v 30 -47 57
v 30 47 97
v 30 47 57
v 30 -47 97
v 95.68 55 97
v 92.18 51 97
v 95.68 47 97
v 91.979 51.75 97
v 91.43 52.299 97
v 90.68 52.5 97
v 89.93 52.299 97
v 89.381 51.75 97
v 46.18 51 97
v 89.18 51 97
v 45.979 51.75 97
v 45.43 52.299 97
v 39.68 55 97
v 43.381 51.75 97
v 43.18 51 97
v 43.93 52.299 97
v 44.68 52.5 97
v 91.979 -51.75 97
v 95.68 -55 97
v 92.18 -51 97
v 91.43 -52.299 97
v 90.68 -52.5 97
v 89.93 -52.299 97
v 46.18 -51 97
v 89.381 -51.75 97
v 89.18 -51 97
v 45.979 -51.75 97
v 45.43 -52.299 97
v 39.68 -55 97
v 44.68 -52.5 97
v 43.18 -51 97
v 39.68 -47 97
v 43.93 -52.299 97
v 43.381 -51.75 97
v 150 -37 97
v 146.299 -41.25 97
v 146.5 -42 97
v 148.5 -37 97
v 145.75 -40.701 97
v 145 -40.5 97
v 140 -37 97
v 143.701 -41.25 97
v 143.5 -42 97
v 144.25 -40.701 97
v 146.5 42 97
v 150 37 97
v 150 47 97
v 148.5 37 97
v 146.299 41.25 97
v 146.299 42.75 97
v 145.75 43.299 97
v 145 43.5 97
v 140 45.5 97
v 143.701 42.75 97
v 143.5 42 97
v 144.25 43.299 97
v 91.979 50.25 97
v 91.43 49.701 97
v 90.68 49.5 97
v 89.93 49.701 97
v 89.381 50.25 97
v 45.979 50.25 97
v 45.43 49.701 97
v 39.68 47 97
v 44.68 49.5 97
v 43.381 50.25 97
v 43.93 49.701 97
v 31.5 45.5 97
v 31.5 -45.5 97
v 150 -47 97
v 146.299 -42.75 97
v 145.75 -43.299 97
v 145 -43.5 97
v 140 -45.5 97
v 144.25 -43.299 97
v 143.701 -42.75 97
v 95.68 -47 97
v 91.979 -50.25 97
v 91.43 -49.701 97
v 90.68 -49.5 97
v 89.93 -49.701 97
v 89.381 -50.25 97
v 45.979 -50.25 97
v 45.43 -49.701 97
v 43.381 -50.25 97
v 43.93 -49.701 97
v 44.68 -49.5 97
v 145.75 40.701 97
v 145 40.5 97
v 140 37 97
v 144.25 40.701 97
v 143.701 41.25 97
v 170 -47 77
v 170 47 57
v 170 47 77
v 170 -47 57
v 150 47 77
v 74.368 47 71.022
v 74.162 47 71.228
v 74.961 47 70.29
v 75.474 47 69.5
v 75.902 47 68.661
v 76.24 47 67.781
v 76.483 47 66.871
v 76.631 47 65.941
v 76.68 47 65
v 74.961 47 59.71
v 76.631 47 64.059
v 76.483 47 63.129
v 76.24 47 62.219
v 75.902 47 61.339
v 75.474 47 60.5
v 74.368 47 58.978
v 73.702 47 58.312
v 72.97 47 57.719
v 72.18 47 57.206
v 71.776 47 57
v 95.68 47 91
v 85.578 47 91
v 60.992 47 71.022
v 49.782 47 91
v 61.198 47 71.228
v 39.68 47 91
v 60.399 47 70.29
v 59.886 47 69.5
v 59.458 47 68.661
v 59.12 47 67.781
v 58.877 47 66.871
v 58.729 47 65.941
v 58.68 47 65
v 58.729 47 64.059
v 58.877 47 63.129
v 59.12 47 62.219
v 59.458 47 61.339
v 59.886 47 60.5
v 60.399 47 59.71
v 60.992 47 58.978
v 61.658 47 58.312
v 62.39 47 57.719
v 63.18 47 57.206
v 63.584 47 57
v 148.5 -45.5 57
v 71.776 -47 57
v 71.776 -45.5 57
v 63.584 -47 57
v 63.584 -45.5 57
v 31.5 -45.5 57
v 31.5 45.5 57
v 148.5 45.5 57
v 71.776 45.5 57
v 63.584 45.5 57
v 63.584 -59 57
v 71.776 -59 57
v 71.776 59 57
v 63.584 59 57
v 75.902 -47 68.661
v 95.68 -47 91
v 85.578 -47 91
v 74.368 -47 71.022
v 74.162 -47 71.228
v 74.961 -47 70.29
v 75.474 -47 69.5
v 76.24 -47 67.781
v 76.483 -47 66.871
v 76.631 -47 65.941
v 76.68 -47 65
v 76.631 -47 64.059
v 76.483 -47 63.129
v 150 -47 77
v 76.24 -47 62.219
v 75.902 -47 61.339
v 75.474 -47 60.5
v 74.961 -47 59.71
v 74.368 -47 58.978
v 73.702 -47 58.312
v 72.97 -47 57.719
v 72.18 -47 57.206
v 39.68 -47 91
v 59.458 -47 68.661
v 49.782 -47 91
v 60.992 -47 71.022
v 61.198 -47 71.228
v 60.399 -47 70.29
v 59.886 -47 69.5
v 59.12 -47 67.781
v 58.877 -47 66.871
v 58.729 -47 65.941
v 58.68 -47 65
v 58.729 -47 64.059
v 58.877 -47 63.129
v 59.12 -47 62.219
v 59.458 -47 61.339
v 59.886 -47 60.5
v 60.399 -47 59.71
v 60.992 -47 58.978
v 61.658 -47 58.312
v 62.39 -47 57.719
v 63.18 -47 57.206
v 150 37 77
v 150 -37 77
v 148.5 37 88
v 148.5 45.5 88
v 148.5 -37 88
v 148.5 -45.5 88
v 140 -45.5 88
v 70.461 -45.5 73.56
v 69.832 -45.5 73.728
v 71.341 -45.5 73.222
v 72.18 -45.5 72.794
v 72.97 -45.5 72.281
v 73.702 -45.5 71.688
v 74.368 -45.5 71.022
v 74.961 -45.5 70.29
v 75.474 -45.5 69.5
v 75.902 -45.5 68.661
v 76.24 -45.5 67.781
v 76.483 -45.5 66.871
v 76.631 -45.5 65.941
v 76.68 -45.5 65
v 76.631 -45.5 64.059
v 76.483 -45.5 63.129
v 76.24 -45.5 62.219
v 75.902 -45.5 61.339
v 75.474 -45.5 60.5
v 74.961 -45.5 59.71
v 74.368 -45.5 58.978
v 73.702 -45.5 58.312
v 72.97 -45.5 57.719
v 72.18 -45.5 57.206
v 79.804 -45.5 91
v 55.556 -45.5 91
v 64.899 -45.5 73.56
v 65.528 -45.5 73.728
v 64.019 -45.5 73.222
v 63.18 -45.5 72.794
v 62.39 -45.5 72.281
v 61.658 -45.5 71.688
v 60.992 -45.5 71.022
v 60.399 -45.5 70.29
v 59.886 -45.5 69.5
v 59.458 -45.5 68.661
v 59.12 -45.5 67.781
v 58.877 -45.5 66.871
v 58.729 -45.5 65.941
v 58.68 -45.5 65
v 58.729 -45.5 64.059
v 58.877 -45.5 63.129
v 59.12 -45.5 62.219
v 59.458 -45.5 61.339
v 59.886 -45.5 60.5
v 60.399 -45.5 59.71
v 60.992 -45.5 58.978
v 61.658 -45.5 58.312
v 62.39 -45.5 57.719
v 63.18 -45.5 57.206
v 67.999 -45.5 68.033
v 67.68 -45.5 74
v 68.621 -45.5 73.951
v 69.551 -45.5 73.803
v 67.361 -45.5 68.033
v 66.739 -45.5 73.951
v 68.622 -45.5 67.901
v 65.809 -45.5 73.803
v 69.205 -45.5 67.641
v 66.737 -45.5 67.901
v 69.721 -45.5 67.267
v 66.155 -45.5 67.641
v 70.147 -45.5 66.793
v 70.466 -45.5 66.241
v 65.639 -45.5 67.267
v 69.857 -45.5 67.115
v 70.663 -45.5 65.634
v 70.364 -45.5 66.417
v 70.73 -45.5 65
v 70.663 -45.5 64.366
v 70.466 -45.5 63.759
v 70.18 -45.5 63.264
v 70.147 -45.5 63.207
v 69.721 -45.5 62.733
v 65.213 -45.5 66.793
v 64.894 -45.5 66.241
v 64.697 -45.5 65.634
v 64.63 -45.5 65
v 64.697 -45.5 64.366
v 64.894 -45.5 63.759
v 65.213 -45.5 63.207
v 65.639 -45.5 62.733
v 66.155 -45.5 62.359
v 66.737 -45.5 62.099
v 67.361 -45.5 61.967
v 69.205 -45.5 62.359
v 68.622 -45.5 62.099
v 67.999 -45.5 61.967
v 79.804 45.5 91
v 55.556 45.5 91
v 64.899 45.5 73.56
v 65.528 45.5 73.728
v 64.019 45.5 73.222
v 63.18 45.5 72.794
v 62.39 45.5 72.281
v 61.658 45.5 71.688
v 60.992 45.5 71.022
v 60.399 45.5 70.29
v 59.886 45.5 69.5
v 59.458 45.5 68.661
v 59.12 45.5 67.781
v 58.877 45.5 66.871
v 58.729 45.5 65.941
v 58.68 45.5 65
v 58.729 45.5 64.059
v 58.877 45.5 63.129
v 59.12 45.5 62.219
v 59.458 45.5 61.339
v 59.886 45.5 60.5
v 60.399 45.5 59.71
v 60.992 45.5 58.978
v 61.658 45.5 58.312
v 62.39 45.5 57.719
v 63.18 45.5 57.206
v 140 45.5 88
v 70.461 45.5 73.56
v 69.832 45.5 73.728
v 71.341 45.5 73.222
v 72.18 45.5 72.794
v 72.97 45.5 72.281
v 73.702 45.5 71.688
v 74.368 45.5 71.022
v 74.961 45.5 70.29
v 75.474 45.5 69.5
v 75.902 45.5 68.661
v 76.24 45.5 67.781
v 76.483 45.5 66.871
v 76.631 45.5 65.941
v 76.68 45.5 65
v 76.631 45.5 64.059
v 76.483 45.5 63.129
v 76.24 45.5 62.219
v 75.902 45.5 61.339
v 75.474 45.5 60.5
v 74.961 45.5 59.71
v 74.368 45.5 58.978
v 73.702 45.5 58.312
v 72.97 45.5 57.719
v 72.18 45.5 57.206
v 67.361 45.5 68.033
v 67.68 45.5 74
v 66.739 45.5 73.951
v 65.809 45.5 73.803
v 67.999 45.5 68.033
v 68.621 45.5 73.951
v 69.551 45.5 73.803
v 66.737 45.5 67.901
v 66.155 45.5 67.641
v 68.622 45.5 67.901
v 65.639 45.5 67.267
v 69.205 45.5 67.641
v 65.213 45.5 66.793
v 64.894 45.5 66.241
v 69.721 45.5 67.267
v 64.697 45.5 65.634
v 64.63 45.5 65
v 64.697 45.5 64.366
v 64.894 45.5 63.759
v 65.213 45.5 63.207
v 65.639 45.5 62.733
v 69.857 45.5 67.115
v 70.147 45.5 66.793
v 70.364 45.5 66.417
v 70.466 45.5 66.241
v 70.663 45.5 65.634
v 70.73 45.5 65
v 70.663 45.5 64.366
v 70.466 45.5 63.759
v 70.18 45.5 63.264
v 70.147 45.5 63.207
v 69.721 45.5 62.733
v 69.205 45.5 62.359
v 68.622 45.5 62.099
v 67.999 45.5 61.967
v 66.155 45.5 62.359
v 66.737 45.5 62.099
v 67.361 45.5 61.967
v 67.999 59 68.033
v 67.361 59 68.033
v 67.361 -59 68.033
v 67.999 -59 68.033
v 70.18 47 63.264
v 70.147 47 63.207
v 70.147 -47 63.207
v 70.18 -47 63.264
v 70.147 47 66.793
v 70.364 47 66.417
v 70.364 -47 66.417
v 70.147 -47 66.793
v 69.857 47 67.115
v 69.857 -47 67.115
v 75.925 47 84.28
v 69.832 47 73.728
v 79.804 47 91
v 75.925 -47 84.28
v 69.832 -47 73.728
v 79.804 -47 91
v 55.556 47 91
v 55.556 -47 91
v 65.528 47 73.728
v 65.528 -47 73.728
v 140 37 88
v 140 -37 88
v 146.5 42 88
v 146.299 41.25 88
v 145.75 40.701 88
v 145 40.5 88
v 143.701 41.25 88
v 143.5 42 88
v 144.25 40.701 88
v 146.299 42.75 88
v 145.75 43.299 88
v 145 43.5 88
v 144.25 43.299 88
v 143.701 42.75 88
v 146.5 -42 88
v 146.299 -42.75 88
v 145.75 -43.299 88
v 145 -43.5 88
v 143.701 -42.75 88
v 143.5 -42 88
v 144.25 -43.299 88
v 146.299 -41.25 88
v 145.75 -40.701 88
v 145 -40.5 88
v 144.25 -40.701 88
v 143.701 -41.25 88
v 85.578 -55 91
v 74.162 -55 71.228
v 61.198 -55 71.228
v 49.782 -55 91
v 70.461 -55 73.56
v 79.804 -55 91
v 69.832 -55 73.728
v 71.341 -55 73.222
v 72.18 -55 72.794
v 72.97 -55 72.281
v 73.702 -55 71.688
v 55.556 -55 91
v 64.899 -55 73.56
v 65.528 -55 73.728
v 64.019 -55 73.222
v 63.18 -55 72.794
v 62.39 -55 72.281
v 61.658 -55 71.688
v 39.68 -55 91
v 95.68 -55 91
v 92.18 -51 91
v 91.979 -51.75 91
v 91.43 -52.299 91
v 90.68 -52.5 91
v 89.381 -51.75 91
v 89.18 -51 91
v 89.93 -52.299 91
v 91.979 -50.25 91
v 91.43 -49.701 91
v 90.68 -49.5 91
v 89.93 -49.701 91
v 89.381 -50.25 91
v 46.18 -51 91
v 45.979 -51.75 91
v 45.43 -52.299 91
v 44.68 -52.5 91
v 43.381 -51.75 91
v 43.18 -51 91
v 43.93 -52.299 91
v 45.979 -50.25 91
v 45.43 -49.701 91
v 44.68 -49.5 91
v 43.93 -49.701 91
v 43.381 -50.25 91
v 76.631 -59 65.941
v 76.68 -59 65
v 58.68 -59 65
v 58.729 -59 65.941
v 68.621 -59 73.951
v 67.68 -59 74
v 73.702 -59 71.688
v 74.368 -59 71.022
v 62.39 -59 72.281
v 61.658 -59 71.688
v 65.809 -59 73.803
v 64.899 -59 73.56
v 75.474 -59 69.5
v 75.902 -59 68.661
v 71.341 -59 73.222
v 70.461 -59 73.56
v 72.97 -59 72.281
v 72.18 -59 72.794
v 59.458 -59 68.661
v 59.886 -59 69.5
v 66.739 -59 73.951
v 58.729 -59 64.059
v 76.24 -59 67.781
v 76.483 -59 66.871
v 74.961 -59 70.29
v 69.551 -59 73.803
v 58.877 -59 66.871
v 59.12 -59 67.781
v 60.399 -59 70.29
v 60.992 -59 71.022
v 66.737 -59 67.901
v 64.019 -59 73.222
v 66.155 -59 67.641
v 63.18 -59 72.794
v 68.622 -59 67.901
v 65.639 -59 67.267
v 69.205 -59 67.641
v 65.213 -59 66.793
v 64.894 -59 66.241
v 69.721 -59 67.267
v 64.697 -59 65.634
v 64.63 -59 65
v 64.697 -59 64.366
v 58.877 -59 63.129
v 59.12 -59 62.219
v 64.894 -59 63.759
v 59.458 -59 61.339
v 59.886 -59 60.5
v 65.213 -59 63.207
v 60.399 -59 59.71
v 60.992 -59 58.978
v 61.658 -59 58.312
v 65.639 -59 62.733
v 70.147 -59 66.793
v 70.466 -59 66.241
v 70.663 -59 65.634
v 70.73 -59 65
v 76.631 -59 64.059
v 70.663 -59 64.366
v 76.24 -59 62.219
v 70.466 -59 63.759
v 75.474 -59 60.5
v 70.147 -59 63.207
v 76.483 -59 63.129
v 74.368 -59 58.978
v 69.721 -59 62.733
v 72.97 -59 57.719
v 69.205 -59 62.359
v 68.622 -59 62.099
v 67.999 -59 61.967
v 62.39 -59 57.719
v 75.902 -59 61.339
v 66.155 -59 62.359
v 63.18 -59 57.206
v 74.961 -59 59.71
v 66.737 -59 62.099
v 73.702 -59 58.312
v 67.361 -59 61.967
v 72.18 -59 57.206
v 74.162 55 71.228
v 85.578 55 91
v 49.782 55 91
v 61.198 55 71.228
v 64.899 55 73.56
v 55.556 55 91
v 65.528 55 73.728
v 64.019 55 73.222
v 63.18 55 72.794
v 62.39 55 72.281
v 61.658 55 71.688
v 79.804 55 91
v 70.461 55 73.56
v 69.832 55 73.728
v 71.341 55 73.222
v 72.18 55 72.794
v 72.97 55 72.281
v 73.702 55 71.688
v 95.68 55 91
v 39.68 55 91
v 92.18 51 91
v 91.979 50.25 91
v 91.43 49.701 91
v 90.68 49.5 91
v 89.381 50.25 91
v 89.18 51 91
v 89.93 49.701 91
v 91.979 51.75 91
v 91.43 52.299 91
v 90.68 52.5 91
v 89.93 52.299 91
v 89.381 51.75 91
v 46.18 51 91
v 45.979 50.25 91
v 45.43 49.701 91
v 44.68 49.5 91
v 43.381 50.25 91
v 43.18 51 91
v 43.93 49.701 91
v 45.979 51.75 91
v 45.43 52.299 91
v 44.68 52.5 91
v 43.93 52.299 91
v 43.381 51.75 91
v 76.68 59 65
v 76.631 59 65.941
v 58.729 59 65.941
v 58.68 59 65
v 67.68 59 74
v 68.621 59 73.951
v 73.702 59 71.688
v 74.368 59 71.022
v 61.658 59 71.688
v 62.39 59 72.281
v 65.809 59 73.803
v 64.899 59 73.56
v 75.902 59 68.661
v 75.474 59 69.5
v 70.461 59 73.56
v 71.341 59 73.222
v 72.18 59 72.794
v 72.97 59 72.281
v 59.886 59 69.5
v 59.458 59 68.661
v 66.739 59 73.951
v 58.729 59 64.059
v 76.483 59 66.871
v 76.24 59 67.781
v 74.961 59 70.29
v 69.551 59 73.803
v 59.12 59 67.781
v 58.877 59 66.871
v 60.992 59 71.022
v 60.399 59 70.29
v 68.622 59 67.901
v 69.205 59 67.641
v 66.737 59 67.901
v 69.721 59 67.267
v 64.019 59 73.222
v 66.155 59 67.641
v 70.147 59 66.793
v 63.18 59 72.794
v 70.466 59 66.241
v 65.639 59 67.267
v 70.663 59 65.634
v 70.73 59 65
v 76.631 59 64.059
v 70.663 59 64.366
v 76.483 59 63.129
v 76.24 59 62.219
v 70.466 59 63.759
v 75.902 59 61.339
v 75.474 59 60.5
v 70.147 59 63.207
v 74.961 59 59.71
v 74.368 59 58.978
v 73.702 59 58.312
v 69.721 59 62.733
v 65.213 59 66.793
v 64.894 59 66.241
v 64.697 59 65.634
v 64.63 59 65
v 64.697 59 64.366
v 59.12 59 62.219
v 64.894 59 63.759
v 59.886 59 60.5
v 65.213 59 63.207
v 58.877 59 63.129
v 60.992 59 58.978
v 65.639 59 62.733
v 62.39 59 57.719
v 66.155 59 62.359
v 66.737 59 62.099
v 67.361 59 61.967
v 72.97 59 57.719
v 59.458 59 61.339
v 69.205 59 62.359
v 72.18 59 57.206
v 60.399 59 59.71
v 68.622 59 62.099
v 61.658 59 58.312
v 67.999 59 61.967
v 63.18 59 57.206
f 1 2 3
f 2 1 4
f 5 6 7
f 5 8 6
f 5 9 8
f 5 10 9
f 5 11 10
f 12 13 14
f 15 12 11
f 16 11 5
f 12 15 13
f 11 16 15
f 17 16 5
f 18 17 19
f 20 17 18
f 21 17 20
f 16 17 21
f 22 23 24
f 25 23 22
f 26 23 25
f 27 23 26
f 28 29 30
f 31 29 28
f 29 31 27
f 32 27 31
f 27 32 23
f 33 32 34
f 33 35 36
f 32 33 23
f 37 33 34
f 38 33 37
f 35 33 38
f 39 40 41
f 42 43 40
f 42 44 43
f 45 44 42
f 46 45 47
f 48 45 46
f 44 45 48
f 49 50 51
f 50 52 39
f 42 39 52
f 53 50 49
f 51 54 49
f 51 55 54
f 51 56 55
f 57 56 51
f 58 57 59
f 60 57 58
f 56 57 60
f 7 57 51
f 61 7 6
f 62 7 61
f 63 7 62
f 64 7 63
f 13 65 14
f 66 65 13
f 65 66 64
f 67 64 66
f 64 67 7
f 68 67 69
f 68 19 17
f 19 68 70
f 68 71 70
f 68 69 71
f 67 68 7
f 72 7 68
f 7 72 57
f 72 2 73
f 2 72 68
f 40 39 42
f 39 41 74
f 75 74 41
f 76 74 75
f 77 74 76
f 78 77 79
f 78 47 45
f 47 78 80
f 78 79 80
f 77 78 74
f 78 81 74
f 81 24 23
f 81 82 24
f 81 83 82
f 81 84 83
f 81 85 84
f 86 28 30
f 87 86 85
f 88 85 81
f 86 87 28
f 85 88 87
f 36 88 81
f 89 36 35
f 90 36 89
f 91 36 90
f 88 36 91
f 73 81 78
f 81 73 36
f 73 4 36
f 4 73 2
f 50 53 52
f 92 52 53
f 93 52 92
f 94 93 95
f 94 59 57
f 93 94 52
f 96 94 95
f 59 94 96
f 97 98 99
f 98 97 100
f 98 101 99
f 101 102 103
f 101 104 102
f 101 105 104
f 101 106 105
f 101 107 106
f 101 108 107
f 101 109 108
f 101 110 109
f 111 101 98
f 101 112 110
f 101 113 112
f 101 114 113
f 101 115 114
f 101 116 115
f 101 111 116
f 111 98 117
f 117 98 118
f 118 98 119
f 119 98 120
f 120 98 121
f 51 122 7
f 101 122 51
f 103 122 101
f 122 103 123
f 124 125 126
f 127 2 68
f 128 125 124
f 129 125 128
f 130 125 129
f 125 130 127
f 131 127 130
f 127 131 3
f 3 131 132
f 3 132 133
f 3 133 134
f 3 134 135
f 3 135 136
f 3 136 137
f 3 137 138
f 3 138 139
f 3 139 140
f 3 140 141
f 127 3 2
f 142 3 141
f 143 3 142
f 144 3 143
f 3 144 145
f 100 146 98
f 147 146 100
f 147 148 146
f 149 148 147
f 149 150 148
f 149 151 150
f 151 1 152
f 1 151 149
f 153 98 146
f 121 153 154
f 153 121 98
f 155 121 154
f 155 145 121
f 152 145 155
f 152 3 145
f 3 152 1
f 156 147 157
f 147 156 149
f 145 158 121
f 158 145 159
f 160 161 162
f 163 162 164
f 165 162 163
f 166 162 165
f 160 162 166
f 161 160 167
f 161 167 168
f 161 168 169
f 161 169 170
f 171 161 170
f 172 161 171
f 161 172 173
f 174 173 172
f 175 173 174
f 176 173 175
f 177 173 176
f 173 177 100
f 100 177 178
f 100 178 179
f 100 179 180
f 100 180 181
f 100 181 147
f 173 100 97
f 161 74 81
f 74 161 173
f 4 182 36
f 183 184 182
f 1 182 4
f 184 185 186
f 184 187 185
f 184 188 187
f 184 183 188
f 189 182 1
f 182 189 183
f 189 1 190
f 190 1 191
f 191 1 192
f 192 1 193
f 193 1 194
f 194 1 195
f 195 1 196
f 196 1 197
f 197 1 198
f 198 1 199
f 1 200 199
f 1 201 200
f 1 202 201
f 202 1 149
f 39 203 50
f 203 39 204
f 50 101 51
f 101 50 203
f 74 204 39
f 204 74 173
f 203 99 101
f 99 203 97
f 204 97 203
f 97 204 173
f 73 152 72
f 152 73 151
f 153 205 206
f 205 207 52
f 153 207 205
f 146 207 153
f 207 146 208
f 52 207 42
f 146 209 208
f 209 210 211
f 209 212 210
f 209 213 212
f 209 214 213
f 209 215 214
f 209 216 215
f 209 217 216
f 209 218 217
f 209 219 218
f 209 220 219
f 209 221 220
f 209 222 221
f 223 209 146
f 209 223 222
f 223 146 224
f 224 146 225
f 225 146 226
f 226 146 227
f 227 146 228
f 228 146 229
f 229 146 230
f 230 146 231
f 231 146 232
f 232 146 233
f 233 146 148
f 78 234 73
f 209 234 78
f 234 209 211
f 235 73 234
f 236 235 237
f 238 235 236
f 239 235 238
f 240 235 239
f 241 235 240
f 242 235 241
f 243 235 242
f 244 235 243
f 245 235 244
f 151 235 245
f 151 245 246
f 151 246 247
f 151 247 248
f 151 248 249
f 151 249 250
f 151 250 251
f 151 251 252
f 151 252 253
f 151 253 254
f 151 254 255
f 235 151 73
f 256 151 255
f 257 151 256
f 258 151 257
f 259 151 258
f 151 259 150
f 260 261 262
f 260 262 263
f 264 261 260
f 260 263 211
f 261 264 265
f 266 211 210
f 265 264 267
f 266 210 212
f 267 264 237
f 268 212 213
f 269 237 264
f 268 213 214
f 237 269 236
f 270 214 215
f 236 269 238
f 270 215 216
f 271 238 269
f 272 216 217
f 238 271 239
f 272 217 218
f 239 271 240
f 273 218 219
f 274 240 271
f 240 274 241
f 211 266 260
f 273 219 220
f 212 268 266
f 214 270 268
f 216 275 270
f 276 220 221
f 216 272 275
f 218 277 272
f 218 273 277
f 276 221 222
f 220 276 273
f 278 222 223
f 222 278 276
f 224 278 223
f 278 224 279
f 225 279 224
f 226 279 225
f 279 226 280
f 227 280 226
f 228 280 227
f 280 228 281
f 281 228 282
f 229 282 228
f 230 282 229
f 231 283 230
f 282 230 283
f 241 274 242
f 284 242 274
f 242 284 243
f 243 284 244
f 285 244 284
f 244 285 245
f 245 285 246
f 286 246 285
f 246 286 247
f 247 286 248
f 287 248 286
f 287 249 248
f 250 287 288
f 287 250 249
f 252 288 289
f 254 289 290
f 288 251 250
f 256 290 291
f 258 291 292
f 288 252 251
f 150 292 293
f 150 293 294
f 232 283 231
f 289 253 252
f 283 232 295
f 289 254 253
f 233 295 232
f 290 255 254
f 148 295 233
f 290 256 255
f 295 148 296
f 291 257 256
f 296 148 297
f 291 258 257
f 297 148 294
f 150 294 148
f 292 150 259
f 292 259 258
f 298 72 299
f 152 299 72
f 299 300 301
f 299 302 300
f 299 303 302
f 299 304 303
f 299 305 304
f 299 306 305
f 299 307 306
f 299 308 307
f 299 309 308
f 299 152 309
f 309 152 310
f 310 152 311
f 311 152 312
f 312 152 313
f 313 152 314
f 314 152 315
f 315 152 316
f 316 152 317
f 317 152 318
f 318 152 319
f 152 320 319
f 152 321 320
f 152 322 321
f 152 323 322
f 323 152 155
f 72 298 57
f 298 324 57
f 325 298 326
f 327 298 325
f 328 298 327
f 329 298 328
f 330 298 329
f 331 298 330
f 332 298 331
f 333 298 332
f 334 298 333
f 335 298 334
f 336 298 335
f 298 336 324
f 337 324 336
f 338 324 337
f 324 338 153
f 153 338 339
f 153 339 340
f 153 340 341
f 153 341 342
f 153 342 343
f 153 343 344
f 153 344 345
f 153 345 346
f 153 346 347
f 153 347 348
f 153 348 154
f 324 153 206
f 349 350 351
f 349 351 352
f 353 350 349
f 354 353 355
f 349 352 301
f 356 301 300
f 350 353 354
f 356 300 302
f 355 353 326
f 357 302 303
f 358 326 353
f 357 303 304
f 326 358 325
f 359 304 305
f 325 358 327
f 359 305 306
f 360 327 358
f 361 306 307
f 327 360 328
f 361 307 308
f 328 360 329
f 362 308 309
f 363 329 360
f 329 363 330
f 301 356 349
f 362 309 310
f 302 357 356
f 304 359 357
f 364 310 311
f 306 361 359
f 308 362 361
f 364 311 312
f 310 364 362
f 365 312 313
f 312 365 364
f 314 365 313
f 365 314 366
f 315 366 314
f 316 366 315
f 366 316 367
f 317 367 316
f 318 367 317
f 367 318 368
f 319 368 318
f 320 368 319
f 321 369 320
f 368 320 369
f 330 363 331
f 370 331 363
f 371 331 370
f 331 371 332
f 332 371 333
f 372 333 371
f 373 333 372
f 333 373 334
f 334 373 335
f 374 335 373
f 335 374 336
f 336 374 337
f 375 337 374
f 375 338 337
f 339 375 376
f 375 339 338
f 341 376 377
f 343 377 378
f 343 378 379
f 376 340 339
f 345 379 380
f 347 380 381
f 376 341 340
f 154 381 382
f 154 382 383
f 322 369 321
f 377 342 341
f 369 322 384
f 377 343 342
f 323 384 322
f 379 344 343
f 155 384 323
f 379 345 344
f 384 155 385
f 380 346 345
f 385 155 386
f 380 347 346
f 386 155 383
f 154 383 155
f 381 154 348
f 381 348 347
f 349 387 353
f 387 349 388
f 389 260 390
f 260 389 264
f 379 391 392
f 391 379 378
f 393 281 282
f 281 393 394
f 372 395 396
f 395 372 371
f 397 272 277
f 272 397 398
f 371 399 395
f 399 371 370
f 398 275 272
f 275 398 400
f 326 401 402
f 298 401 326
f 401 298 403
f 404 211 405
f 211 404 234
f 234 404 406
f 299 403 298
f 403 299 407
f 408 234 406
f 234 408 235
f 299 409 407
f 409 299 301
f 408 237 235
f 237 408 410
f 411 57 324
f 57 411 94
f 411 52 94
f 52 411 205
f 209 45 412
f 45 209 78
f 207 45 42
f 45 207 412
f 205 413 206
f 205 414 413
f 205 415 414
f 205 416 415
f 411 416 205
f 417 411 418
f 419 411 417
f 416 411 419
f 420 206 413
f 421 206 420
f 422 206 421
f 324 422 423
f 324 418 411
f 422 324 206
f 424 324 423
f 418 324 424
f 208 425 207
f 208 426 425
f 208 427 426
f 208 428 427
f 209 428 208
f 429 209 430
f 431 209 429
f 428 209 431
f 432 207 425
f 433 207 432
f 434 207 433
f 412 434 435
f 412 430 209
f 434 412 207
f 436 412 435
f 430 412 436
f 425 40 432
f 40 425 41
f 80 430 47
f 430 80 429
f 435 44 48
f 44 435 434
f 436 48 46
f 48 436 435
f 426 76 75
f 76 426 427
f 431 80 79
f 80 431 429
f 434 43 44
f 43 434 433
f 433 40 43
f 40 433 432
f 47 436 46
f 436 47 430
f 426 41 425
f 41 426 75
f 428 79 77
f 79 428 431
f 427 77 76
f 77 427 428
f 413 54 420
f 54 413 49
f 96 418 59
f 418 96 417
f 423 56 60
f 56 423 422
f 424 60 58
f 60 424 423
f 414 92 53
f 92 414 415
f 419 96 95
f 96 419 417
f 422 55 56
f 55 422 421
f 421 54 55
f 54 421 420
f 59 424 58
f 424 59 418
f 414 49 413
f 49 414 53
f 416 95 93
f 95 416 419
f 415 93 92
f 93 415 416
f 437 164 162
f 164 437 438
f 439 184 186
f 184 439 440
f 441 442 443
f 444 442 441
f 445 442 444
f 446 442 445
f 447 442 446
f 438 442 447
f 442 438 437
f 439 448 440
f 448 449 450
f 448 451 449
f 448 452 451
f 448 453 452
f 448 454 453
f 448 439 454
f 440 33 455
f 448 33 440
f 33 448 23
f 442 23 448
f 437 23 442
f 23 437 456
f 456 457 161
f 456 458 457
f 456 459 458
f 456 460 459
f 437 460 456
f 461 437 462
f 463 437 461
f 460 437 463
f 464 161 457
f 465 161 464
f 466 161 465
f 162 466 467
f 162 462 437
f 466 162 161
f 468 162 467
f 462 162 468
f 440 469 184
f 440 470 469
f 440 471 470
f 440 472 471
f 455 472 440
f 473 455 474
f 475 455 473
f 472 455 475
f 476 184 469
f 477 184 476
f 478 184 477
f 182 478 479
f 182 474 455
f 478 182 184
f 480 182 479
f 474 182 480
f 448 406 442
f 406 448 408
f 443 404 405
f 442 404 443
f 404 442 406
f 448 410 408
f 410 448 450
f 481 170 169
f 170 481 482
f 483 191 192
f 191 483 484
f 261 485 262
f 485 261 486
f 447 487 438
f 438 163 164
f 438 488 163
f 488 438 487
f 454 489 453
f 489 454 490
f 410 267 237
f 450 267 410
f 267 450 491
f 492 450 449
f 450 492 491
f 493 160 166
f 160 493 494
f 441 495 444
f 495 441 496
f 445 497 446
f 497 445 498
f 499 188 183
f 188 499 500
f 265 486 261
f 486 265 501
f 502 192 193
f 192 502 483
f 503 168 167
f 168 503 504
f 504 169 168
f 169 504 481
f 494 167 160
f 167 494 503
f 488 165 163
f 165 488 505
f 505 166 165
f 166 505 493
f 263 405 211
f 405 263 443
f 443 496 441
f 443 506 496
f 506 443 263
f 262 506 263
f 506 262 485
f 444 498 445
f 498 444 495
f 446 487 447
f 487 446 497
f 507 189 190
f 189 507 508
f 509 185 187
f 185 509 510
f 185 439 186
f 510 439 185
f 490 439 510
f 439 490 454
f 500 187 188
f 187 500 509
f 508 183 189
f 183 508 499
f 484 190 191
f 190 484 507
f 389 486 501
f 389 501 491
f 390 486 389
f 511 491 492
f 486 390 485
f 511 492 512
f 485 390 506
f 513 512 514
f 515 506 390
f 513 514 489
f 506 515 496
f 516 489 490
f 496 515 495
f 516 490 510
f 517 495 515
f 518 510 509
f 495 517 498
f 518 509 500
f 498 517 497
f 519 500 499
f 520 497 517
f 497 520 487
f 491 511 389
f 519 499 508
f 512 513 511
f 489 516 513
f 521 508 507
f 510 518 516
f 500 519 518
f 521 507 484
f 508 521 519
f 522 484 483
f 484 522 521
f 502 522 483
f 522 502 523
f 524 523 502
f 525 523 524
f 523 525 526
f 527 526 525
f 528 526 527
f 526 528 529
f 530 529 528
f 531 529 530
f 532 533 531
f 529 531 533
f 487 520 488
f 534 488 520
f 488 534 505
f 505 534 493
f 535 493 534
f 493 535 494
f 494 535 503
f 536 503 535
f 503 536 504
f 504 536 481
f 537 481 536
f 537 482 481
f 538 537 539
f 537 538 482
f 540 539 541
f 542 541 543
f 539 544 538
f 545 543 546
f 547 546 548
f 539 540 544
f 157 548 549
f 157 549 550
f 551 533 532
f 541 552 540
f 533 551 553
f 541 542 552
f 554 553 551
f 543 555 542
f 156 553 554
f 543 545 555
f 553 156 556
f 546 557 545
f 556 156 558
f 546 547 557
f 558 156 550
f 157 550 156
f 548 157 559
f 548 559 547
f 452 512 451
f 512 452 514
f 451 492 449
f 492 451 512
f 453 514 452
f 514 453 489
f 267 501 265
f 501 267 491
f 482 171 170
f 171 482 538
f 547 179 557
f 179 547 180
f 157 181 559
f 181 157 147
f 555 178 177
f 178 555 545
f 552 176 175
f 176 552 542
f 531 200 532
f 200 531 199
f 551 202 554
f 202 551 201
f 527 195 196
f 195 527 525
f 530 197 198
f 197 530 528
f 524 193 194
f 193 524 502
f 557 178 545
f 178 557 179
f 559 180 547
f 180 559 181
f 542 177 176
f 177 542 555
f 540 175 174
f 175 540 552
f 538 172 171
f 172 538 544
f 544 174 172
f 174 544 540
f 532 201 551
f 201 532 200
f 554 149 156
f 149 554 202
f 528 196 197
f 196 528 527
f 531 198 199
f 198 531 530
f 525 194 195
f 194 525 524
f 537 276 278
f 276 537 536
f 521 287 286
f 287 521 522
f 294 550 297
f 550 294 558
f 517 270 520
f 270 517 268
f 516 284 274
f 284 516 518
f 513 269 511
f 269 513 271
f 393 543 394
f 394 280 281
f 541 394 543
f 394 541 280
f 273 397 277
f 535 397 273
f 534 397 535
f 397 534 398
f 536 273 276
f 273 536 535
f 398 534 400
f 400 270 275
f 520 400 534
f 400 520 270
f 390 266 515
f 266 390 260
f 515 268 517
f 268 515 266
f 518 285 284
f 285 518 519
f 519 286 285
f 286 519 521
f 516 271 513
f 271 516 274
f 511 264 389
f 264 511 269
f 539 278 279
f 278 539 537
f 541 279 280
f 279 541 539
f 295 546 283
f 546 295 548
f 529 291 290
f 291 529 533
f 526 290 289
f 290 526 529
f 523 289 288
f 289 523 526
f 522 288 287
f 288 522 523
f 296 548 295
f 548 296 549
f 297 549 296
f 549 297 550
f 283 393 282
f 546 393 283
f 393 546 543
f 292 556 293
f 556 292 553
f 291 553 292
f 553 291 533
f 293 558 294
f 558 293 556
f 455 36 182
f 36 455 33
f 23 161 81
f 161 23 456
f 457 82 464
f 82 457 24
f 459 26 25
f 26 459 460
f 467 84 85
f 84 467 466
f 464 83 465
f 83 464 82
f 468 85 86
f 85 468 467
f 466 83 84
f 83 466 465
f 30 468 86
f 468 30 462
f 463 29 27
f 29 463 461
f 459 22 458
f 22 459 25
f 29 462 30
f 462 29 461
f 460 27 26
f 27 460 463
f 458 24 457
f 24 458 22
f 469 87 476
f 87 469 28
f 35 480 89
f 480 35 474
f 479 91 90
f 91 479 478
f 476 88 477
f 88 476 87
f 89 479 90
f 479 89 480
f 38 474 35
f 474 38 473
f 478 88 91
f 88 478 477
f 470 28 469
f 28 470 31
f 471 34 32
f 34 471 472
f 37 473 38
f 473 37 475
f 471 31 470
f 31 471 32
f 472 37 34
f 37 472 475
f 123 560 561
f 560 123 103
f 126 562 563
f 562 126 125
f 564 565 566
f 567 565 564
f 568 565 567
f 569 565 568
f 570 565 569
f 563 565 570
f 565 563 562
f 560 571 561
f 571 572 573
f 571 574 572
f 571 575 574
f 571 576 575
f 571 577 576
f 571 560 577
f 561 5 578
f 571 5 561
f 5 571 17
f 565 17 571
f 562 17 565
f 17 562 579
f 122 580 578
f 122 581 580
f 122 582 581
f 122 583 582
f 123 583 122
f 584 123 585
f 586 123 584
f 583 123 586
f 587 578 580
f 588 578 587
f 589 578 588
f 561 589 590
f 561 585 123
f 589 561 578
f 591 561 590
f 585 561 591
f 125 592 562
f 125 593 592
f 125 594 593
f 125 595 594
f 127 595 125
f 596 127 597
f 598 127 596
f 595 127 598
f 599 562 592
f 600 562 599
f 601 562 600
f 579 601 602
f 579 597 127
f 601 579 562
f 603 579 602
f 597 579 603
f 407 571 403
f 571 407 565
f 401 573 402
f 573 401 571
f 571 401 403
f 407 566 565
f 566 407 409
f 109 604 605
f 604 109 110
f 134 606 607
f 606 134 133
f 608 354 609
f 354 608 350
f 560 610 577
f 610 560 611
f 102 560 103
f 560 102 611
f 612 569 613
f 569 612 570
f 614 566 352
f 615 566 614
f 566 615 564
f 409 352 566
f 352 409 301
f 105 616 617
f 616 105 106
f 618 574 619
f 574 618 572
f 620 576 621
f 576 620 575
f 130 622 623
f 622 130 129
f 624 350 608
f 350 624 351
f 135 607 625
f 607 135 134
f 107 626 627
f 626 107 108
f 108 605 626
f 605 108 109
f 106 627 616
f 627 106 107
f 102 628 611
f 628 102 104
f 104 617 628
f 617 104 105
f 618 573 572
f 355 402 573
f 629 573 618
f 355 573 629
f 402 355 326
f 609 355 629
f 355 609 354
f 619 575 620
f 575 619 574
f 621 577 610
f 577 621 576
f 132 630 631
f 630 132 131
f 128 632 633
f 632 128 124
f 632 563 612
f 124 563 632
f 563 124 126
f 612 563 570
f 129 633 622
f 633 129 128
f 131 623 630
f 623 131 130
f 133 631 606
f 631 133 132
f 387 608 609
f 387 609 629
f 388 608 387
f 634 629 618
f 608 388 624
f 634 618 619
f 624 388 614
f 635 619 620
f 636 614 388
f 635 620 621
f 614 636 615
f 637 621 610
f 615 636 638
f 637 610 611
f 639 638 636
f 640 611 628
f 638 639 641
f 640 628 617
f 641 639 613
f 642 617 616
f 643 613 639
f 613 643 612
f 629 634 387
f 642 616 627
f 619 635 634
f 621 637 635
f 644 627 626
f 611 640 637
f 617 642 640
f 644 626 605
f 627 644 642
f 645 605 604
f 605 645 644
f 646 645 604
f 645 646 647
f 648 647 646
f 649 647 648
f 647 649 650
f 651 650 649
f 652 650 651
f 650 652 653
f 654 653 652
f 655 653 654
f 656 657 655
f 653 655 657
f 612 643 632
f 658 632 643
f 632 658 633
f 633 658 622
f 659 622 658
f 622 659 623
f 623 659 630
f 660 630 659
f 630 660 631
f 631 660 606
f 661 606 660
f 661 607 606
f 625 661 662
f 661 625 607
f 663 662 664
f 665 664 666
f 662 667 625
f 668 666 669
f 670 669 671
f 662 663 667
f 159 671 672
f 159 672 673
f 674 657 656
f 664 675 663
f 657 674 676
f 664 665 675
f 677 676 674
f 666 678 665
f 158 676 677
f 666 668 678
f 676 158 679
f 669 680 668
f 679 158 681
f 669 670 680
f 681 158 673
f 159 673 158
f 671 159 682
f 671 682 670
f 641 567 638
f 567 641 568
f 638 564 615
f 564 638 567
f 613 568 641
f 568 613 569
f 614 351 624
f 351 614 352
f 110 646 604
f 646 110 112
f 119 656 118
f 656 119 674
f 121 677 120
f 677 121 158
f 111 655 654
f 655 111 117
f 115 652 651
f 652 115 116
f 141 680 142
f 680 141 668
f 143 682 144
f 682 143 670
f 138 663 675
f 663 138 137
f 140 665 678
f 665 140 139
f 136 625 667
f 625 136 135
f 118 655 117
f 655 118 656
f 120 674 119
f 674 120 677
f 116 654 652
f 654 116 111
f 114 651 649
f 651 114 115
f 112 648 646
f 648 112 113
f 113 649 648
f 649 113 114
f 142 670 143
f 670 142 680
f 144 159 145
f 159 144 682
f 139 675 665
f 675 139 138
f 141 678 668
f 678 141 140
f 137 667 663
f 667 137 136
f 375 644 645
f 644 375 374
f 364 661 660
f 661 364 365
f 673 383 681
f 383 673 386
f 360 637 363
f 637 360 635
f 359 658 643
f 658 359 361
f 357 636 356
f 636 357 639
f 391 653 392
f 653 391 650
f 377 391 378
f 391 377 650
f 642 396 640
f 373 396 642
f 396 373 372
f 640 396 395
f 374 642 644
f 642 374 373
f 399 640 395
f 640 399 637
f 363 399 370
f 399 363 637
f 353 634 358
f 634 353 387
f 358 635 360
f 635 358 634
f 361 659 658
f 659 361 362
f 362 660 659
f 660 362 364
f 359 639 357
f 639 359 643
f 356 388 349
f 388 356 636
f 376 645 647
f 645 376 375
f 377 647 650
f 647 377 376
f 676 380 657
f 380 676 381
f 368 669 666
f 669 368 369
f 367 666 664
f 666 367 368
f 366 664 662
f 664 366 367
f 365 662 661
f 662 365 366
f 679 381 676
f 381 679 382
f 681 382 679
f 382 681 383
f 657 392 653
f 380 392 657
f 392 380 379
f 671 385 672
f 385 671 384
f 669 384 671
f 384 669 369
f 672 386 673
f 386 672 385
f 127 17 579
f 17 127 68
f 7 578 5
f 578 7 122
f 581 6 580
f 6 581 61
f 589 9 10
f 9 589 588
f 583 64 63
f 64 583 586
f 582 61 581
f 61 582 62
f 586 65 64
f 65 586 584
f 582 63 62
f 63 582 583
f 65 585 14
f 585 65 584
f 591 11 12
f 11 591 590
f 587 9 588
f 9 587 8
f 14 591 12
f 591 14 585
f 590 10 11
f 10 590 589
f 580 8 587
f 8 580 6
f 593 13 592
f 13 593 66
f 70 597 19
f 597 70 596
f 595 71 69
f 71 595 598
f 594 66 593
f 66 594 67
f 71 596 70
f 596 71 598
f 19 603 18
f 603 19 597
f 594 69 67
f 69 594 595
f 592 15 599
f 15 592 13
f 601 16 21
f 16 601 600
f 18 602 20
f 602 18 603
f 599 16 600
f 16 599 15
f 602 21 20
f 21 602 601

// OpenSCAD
translate([30,-47,57])
union(){
difference(){
cube([140,94,40]);
translate([120,-1,20])cube([21,100,21]);
translate([1.5,1.5,-1])cube([117,91,42]);
translate([-30,47,-57])
rotate([90,0,0])translate([67.68,65,-100])
cylinder(d=6.1,h=200,$fn=30);
translate([-30,47,-38])rotate([90,0,0])
translate([67.68,65,-100])rotate([0,0,-90])
cylinder(d=28,h=200,$fn=3);
}

difference(){
union(){
translate([110,84,0])cube([10,10,40]);
translate([110,0,0])cube([10,10,40]);
}
translate([108.5,82.5,-1])cube([10,10,32]);
translate([108.5,1.5,-1])cube([10,10,32]);

translate([115,5,28])cylinder(d=3,h=14,$fn=12);
translate([115,89,28])cylinder(d=3,h=14,$fn=12);
}
}

difference(){
rotate([90,0,0])
{
translate([67.68,65,47])chassis();
mirror([0,0,1])
translate([67.68,65,47])chassis();
}
translate([0,-100,0])cube([300,200,57]);
}
 
module chassis(){
difference(){
union(){
translate([0,0,-1.5])cylinder(d=18,h=13.5,$fn=60);
translate([0,19,0])rotate([0,0,-90])
difference(){
cylinder(d=48,h=8,$fn=3);
translate([0,0,-1])cylinder(d=28,h=20,$fn=3);
}
}
translate([0,0,-2])cylinder(d=6.1,h=20,$fn=30);
}

difference(){
translate([-28,26,0])cube([56,6,8]);
translate([23,0,4])rotate([-90,0,0])
cylinder(d=3,h=50,$fn=12);
translate([-23,0,4])rotate([-90,0,0])
cylinder(d=3,h=50,$fn=12);
}
}
